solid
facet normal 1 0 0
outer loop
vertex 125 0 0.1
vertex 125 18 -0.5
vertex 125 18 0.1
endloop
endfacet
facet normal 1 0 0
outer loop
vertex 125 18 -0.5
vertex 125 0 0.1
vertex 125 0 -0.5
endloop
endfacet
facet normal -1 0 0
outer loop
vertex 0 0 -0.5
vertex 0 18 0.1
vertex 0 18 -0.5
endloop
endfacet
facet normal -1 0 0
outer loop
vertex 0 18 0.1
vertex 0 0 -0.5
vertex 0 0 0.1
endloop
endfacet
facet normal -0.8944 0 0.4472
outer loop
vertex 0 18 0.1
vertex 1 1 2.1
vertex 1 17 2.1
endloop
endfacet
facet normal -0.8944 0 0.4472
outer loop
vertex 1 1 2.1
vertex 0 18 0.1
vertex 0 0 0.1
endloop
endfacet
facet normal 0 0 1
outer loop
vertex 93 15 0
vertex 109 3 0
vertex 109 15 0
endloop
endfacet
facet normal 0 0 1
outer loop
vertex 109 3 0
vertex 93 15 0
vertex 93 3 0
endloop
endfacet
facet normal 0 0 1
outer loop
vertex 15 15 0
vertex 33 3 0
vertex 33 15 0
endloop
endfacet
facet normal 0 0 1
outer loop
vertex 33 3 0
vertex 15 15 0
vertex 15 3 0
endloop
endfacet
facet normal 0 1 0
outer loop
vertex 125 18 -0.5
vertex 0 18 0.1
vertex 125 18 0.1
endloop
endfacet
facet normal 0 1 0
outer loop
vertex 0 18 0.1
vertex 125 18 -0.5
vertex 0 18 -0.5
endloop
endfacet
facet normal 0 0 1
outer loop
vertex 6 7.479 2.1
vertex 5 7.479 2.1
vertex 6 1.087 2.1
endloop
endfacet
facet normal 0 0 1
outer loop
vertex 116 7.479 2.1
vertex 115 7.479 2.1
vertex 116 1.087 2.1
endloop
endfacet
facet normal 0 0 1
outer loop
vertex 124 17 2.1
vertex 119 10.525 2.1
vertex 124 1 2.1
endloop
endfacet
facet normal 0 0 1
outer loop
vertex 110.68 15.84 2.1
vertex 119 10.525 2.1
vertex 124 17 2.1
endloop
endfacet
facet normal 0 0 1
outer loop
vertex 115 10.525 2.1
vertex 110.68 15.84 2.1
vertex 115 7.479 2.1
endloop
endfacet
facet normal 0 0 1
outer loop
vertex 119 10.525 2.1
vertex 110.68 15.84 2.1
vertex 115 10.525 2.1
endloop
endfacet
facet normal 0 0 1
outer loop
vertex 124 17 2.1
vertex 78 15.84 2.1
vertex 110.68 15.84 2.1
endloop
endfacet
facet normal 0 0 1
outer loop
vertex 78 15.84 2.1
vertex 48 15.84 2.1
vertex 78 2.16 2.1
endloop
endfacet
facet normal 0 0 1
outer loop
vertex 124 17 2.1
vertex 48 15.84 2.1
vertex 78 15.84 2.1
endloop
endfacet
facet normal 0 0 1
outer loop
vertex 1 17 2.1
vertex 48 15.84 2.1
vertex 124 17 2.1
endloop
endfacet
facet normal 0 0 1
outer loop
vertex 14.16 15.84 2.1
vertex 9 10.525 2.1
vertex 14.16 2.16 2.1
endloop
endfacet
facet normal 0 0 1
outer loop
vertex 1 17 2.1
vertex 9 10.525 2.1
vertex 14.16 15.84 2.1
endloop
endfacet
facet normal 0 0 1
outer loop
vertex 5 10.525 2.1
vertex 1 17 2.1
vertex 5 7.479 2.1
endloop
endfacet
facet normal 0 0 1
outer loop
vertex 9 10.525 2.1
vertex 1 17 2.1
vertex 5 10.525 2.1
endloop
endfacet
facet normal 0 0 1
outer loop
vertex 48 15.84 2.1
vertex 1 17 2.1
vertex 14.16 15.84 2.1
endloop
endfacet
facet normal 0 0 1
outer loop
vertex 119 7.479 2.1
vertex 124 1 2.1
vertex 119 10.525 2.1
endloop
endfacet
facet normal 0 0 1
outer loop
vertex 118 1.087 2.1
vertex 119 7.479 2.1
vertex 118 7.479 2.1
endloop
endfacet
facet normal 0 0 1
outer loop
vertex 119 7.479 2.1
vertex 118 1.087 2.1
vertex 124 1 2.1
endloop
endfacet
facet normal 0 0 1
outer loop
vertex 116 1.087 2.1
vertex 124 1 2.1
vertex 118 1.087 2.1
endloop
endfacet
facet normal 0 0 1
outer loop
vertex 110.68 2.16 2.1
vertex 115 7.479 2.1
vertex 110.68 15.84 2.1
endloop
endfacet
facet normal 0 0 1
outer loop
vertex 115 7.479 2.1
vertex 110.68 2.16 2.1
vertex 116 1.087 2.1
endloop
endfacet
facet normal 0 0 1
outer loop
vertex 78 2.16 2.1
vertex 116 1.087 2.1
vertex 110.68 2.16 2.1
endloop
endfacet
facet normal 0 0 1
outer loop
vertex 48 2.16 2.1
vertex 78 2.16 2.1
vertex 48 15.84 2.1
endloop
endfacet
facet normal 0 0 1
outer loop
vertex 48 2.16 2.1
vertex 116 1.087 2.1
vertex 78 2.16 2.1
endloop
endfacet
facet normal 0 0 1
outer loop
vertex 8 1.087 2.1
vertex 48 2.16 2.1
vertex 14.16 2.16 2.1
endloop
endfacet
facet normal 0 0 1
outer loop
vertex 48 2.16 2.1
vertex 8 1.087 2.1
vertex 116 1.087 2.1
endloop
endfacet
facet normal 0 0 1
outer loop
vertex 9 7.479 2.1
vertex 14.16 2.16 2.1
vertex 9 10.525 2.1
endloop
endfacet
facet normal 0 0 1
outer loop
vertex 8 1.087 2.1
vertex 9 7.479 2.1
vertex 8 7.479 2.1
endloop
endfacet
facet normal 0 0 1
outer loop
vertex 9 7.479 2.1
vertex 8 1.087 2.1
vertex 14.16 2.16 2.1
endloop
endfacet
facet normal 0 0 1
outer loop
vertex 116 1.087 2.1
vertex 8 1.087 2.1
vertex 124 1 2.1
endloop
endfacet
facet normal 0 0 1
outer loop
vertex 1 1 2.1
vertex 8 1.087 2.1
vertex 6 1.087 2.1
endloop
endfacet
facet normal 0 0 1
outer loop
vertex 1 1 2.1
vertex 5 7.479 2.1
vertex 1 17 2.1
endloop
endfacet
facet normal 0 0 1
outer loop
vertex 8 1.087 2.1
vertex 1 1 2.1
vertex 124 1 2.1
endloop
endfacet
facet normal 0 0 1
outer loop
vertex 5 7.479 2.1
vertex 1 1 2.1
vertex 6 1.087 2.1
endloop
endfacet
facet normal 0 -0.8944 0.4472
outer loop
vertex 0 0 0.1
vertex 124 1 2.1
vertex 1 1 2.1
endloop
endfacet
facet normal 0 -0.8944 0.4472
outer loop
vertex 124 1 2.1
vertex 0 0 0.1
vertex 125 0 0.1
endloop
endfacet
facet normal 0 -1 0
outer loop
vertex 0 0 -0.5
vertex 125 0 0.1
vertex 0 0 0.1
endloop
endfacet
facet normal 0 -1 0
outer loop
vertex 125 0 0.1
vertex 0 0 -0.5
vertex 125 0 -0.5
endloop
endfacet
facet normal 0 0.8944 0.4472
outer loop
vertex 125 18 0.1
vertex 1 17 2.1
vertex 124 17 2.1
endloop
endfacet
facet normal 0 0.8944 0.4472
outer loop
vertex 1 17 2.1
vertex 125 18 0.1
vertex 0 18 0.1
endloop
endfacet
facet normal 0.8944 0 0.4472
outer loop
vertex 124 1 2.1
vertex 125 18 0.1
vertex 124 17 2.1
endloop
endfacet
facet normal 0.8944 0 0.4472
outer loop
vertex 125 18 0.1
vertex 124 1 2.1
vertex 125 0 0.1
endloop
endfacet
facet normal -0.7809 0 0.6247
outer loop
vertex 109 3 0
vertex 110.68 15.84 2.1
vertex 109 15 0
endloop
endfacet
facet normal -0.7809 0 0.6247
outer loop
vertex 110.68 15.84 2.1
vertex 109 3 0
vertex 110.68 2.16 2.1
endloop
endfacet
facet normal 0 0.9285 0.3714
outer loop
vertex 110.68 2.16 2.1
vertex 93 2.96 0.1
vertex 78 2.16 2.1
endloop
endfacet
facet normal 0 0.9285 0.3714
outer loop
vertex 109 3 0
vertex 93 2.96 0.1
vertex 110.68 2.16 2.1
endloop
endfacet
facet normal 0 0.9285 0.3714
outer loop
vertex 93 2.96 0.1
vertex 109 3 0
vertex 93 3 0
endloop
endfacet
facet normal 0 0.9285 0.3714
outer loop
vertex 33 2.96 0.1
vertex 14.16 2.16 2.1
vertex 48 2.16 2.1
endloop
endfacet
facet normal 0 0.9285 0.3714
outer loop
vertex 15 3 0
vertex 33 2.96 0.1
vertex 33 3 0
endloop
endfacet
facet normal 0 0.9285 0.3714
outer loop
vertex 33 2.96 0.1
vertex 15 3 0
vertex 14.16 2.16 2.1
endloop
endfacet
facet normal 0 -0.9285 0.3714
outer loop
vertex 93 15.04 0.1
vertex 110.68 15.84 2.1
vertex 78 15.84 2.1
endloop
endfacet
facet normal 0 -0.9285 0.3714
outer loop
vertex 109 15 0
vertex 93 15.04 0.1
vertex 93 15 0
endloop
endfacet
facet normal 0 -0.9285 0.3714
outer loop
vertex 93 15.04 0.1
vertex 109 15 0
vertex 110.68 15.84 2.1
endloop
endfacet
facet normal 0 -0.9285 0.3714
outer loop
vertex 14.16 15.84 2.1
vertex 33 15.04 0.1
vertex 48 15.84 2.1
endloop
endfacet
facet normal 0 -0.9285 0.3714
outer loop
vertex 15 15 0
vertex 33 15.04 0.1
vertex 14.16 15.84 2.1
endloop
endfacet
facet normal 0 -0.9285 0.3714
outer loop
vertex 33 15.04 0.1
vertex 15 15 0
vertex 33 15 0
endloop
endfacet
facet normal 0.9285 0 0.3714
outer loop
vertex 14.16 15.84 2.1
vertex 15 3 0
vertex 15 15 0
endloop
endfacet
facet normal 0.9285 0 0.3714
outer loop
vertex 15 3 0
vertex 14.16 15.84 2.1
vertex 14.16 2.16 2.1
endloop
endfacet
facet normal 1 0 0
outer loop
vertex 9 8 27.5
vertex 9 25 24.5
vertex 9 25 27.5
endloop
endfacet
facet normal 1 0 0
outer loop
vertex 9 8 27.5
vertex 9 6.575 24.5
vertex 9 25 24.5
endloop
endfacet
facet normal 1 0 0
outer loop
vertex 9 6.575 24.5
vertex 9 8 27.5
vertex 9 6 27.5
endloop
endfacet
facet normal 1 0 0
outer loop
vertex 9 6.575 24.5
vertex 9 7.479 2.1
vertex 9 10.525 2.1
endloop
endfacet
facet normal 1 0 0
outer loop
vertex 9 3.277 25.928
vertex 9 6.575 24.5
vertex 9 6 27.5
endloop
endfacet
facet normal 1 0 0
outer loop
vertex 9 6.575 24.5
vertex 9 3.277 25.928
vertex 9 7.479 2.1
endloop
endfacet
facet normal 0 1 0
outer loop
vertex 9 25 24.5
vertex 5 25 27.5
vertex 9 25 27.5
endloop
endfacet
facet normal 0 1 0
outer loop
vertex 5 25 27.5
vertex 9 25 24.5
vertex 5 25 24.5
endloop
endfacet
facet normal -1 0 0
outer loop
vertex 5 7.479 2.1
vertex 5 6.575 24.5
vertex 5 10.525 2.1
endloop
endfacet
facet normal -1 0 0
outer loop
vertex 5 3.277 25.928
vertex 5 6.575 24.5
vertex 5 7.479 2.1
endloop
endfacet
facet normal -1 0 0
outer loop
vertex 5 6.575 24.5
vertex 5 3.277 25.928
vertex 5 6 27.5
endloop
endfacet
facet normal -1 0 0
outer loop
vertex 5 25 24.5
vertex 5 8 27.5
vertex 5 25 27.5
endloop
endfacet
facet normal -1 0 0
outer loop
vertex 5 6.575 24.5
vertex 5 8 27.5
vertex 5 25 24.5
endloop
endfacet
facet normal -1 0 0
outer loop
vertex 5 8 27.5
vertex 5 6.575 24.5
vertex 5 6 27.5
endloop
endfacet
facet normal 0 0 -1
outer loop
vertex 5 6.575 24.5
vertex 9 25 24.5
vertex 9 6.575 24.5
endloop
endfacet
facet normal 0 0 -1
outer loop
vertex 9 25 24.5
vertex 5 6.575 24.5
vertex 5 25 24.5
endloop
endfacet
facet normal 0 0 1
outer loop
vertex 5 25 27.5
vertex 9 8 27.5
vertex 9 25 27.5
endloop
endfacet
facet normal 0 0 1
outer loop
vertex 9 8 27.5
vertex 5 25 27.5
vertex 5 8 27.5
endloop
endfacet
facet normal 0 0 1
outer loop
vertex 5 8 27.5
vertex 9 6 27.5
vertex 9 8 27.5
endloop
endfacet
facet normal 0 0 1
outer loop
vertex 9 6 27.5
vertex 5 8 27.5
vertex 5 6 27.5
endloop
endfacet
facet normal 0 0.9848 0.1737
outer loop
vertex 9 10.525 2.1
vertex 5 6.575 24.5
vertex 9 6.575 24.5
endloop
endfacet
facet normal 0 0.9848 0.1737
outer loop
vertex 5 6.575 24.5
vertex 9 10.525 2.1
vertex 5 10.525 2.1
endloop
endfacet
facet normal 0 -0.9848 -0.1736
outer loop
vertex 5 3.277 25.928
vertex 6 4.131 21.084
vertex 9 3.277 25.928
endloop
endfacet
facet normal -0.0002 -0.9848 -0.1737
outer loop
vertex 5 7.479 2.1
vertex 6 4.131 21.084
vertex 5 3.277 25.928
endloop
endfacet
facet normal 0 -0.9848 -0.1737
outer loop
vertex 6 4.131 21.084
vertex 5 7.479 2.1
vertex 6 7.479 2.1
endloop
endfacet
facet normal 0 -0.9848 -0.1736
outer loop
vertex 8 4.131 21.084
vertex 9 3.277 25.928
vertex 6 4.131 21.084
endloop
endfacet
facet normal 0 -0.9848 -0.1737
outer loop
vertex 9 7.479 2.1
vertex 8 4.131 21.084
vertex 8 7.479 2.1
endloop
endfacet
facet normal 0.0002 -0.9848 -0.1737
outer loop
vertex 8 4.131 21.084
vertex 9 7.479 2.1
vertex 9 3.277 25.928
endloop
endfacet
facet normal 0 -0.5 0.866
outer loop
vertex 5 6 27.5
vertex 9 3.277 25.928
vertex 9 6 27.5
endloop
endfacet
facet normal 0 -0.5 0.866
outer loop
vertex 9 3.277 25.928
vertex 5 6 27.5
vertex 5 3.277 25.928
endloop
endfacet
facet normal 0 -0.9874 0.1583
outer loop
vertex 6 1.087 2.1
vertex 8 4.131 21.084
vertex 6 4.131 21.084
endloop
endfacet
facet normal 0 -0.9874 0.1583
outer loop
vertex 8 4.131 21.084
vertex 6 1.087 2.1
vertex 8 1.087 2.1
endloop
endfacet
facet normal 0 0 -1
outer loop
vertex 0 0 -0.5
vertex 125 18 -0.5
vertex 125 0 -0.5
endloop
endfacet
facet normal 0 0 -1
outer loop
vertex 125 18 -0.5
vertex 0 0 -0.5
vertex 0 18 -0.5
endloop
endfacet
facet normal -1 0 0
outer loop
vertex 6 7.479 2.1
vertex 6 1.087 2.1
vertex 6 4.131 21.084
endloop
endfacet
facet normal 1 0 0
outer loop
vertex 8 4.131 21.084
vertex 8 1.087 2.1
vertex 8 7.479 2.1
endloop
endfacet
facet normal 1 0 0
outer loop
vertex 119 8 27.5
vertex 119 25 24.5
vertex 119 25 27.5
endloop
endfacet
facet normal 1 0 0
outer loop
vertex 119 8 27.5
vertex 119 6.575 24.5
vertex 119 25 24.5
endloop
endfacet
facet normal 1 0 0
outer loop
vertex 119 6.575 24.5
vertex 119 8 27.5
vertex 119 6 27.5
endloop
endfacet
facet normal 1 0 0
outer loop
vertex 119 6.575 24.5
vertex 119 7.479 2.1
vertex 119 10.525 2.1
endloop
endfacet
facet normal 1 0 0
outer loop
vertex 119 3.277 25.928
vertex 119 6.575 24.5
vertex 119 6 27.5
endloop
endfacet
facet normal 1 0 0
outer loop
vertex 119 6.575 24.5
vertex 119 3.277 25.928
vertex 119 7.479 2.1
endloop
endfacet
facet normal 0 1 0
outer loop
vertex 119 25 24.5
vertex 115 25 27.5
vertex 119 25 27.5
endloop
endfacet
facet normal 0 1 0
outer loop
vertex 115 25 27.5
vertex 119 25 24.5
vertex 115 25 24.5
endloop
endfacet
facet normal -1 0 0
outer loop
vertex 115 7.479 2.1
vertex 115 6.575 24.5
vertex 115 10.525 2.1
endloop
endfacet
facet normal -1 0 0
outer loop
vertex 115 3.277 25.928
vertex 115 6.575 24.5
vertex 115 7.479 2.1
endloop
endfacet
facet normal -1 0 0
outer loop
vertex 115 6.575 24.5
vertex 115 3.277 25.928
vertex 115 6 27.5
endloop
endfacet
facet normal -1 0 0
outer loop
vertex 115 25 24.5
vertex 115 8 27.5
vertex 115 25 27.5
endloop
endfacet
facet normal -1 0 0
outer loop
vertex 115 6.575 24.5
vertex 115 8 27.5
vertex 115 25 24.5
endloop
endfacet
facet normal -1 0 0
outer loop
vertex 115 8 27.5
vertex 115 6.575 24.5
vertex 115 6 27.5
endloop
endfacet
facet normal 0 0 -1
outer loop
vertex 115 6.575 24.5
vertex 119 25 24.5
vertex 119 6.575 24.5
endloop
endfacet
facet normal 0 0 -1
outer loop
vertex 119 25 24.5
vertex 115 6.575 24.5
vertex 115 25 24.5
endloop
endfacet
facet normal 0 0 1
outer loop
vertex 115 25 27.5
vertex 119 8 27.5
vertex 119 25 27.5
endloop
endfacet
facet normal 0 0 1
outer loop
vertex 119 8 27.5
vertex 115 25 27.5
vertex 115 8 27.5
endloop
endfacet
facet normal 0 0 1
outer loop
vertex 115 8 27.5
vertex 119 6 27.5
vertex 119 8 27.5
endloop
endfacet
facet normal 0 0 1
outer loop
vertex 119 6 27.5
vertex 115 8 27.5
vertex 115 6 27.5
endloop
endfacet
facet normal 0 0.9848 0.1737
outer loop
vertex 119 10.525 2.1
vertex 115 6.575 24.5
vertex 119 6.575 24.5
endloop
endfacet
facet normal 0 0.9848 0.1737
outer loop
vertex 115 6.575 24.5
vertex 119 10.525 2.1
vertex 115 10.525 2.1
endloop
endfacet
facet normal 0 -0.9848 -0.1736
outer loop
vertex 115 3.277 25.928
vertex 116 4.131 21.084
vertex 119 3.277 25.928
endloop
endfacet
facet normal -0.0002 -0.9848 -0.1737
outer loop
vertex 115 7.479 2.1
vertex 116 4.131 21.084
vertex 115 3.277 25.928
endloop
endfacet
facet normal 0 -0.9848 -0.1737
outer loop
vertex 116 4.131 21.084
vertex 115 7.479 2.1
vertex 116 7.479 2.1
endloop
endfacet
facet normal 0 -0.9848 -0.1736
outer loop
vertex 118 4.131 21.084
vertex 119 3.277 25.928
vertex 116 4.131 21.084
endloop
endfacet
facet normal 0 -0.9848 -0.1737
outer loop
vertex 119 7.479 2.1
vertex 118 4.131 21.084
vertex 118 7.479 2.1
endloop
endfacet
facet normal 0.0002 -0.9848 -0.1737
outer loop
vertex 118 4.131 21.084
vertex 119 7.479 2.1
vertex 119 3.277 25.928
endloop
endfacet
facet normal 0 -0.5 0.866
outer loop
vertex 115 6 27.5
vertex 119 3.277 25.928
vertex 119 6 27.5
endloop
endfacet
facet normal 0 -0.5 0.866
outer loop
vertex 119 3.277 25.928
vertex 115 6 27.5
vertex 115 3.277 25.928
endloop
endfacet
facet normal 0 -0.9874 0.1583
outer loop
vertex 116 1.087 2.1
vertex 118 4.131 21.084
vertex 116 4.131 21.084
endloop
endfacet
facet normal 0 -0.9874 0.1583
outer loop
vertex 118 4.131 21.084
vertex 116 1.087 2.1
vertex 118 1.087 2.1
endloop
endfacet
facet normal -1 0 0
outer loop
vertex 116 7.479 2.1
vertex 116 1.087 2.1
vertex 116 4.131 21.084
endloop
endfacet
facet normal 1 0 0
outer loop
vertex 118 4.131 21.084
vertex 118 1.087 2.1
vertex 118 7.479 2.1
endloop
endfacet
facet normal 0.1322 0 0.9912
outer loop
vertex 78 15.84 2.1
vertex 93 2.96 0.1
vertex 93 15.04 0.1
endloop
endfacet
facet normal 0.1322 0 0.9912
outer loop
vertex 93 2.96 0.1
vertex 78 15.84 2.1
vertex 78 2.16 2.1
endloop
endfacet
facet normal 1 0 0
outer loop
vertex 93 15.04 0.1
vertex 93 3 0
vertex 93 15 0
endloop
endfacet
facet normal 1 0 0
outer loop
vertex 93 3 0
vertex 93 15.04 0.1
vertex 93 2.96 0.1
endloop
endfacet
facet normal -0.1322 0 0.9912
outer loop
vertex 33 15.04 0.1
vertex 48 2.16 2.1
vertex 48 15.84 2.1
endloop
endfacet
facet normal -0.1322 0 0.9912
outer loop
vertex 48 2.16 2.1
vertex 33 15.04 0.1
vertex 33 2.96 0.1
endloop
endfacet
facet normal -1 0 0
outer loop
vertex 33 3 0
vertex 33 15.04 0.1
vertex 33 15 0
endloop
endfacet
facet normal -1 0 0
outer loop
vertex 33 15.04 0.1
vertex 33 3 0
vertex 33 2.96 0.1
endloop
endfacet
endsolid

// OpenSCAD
echo(version=version());
// Base Config
base_W = 120; // Min Size < 10
base_H = 40; // Min Size < 40
base_T = 0.5; // Fix Size = 0.5 for Stapler
default_S = 12; // Fix Size = 12 for Stapler (Stapler size)
default_T = 3.0; // Fix Size = 2.0 for Stapler (base_T < default_T)
$fn = 60;

// hock brock
translate([5, 3, 27.5]) rotate([-90, 0, 0]) hock();
translate([115, 3, 27.5]) rotate([-90, 0, 0]) hock();


// base
translate([0, 0, -0.5]) cube([125, 18, 0.5]);
//main part
difference(){
    union(){
        hull() {
            cube([125, 18, 0.1]);
            translate([1, 1, 2]) cube([123, 16, 0.1]);
        }
    }
    translate([14, 2, 0]) stapler_area(base_T,base_W - 20,default_S,default_T);
}

hull() {
    translate([33, 2, 0]) cube([60, 14, 0.1]);
    translate([48, 2, 2]) cube([30, 14, 0.1]);
}

module hock() {
    difference(){
        union(){
            translate([0, 0, 2]) cube([4, 3, 20]);
            rotate([10, 0, 0]) cube([4, 28, 3]);
        }
        translate([-0.5, -5, 0]) cube(5);
        translate([4.5, 0, 1]) rotate([0, -90, 0]) cylinder(h=5, r=2, center=false, $fn=3);
    }
    translate([3, 19, 2]) rotate([90, 0, -90]) scale([18,5,1]) cylinder(h=2, r=1, center=false, $fn=3);
}

module stapler_area(bt,bw,ds,dt) {
    hull() {
        translate([0, 0, dt - bt]) cube([bw - dt, ds + 2, 0.1]);
        translate([1, 1, 0]) cube([bw - dt * 2, ds, 0.1]);
    }
}

module staple_base(bt,bw,bh,ds,dt) {
    union() {
        // Base1(Bottom)
        cube([bw, bh, bt]);
        // Base2(Top)
        translate([0, 0, bt]) {
            difference() {
                // Base2_body
                hull() {
                    translate([1, 1, dt - bt]) cube([bw - 2, bh - 2, 0.1]);
                    translate([0, 0, 0]) cube([bw, bh, 0.1]);
                }
                // Base2_stapler_area1(Top)
                # translate([dt - 1, dt - 1, 0]) stapler_area(bt,bw,ds,dt);
                // Base2_stapler_area2(Bottom)
                # translate([dt - 1, bh - ds - dt - 1, 0]) stapler_area(bt,bw,ds,dt);
            }
        }
    }
}
